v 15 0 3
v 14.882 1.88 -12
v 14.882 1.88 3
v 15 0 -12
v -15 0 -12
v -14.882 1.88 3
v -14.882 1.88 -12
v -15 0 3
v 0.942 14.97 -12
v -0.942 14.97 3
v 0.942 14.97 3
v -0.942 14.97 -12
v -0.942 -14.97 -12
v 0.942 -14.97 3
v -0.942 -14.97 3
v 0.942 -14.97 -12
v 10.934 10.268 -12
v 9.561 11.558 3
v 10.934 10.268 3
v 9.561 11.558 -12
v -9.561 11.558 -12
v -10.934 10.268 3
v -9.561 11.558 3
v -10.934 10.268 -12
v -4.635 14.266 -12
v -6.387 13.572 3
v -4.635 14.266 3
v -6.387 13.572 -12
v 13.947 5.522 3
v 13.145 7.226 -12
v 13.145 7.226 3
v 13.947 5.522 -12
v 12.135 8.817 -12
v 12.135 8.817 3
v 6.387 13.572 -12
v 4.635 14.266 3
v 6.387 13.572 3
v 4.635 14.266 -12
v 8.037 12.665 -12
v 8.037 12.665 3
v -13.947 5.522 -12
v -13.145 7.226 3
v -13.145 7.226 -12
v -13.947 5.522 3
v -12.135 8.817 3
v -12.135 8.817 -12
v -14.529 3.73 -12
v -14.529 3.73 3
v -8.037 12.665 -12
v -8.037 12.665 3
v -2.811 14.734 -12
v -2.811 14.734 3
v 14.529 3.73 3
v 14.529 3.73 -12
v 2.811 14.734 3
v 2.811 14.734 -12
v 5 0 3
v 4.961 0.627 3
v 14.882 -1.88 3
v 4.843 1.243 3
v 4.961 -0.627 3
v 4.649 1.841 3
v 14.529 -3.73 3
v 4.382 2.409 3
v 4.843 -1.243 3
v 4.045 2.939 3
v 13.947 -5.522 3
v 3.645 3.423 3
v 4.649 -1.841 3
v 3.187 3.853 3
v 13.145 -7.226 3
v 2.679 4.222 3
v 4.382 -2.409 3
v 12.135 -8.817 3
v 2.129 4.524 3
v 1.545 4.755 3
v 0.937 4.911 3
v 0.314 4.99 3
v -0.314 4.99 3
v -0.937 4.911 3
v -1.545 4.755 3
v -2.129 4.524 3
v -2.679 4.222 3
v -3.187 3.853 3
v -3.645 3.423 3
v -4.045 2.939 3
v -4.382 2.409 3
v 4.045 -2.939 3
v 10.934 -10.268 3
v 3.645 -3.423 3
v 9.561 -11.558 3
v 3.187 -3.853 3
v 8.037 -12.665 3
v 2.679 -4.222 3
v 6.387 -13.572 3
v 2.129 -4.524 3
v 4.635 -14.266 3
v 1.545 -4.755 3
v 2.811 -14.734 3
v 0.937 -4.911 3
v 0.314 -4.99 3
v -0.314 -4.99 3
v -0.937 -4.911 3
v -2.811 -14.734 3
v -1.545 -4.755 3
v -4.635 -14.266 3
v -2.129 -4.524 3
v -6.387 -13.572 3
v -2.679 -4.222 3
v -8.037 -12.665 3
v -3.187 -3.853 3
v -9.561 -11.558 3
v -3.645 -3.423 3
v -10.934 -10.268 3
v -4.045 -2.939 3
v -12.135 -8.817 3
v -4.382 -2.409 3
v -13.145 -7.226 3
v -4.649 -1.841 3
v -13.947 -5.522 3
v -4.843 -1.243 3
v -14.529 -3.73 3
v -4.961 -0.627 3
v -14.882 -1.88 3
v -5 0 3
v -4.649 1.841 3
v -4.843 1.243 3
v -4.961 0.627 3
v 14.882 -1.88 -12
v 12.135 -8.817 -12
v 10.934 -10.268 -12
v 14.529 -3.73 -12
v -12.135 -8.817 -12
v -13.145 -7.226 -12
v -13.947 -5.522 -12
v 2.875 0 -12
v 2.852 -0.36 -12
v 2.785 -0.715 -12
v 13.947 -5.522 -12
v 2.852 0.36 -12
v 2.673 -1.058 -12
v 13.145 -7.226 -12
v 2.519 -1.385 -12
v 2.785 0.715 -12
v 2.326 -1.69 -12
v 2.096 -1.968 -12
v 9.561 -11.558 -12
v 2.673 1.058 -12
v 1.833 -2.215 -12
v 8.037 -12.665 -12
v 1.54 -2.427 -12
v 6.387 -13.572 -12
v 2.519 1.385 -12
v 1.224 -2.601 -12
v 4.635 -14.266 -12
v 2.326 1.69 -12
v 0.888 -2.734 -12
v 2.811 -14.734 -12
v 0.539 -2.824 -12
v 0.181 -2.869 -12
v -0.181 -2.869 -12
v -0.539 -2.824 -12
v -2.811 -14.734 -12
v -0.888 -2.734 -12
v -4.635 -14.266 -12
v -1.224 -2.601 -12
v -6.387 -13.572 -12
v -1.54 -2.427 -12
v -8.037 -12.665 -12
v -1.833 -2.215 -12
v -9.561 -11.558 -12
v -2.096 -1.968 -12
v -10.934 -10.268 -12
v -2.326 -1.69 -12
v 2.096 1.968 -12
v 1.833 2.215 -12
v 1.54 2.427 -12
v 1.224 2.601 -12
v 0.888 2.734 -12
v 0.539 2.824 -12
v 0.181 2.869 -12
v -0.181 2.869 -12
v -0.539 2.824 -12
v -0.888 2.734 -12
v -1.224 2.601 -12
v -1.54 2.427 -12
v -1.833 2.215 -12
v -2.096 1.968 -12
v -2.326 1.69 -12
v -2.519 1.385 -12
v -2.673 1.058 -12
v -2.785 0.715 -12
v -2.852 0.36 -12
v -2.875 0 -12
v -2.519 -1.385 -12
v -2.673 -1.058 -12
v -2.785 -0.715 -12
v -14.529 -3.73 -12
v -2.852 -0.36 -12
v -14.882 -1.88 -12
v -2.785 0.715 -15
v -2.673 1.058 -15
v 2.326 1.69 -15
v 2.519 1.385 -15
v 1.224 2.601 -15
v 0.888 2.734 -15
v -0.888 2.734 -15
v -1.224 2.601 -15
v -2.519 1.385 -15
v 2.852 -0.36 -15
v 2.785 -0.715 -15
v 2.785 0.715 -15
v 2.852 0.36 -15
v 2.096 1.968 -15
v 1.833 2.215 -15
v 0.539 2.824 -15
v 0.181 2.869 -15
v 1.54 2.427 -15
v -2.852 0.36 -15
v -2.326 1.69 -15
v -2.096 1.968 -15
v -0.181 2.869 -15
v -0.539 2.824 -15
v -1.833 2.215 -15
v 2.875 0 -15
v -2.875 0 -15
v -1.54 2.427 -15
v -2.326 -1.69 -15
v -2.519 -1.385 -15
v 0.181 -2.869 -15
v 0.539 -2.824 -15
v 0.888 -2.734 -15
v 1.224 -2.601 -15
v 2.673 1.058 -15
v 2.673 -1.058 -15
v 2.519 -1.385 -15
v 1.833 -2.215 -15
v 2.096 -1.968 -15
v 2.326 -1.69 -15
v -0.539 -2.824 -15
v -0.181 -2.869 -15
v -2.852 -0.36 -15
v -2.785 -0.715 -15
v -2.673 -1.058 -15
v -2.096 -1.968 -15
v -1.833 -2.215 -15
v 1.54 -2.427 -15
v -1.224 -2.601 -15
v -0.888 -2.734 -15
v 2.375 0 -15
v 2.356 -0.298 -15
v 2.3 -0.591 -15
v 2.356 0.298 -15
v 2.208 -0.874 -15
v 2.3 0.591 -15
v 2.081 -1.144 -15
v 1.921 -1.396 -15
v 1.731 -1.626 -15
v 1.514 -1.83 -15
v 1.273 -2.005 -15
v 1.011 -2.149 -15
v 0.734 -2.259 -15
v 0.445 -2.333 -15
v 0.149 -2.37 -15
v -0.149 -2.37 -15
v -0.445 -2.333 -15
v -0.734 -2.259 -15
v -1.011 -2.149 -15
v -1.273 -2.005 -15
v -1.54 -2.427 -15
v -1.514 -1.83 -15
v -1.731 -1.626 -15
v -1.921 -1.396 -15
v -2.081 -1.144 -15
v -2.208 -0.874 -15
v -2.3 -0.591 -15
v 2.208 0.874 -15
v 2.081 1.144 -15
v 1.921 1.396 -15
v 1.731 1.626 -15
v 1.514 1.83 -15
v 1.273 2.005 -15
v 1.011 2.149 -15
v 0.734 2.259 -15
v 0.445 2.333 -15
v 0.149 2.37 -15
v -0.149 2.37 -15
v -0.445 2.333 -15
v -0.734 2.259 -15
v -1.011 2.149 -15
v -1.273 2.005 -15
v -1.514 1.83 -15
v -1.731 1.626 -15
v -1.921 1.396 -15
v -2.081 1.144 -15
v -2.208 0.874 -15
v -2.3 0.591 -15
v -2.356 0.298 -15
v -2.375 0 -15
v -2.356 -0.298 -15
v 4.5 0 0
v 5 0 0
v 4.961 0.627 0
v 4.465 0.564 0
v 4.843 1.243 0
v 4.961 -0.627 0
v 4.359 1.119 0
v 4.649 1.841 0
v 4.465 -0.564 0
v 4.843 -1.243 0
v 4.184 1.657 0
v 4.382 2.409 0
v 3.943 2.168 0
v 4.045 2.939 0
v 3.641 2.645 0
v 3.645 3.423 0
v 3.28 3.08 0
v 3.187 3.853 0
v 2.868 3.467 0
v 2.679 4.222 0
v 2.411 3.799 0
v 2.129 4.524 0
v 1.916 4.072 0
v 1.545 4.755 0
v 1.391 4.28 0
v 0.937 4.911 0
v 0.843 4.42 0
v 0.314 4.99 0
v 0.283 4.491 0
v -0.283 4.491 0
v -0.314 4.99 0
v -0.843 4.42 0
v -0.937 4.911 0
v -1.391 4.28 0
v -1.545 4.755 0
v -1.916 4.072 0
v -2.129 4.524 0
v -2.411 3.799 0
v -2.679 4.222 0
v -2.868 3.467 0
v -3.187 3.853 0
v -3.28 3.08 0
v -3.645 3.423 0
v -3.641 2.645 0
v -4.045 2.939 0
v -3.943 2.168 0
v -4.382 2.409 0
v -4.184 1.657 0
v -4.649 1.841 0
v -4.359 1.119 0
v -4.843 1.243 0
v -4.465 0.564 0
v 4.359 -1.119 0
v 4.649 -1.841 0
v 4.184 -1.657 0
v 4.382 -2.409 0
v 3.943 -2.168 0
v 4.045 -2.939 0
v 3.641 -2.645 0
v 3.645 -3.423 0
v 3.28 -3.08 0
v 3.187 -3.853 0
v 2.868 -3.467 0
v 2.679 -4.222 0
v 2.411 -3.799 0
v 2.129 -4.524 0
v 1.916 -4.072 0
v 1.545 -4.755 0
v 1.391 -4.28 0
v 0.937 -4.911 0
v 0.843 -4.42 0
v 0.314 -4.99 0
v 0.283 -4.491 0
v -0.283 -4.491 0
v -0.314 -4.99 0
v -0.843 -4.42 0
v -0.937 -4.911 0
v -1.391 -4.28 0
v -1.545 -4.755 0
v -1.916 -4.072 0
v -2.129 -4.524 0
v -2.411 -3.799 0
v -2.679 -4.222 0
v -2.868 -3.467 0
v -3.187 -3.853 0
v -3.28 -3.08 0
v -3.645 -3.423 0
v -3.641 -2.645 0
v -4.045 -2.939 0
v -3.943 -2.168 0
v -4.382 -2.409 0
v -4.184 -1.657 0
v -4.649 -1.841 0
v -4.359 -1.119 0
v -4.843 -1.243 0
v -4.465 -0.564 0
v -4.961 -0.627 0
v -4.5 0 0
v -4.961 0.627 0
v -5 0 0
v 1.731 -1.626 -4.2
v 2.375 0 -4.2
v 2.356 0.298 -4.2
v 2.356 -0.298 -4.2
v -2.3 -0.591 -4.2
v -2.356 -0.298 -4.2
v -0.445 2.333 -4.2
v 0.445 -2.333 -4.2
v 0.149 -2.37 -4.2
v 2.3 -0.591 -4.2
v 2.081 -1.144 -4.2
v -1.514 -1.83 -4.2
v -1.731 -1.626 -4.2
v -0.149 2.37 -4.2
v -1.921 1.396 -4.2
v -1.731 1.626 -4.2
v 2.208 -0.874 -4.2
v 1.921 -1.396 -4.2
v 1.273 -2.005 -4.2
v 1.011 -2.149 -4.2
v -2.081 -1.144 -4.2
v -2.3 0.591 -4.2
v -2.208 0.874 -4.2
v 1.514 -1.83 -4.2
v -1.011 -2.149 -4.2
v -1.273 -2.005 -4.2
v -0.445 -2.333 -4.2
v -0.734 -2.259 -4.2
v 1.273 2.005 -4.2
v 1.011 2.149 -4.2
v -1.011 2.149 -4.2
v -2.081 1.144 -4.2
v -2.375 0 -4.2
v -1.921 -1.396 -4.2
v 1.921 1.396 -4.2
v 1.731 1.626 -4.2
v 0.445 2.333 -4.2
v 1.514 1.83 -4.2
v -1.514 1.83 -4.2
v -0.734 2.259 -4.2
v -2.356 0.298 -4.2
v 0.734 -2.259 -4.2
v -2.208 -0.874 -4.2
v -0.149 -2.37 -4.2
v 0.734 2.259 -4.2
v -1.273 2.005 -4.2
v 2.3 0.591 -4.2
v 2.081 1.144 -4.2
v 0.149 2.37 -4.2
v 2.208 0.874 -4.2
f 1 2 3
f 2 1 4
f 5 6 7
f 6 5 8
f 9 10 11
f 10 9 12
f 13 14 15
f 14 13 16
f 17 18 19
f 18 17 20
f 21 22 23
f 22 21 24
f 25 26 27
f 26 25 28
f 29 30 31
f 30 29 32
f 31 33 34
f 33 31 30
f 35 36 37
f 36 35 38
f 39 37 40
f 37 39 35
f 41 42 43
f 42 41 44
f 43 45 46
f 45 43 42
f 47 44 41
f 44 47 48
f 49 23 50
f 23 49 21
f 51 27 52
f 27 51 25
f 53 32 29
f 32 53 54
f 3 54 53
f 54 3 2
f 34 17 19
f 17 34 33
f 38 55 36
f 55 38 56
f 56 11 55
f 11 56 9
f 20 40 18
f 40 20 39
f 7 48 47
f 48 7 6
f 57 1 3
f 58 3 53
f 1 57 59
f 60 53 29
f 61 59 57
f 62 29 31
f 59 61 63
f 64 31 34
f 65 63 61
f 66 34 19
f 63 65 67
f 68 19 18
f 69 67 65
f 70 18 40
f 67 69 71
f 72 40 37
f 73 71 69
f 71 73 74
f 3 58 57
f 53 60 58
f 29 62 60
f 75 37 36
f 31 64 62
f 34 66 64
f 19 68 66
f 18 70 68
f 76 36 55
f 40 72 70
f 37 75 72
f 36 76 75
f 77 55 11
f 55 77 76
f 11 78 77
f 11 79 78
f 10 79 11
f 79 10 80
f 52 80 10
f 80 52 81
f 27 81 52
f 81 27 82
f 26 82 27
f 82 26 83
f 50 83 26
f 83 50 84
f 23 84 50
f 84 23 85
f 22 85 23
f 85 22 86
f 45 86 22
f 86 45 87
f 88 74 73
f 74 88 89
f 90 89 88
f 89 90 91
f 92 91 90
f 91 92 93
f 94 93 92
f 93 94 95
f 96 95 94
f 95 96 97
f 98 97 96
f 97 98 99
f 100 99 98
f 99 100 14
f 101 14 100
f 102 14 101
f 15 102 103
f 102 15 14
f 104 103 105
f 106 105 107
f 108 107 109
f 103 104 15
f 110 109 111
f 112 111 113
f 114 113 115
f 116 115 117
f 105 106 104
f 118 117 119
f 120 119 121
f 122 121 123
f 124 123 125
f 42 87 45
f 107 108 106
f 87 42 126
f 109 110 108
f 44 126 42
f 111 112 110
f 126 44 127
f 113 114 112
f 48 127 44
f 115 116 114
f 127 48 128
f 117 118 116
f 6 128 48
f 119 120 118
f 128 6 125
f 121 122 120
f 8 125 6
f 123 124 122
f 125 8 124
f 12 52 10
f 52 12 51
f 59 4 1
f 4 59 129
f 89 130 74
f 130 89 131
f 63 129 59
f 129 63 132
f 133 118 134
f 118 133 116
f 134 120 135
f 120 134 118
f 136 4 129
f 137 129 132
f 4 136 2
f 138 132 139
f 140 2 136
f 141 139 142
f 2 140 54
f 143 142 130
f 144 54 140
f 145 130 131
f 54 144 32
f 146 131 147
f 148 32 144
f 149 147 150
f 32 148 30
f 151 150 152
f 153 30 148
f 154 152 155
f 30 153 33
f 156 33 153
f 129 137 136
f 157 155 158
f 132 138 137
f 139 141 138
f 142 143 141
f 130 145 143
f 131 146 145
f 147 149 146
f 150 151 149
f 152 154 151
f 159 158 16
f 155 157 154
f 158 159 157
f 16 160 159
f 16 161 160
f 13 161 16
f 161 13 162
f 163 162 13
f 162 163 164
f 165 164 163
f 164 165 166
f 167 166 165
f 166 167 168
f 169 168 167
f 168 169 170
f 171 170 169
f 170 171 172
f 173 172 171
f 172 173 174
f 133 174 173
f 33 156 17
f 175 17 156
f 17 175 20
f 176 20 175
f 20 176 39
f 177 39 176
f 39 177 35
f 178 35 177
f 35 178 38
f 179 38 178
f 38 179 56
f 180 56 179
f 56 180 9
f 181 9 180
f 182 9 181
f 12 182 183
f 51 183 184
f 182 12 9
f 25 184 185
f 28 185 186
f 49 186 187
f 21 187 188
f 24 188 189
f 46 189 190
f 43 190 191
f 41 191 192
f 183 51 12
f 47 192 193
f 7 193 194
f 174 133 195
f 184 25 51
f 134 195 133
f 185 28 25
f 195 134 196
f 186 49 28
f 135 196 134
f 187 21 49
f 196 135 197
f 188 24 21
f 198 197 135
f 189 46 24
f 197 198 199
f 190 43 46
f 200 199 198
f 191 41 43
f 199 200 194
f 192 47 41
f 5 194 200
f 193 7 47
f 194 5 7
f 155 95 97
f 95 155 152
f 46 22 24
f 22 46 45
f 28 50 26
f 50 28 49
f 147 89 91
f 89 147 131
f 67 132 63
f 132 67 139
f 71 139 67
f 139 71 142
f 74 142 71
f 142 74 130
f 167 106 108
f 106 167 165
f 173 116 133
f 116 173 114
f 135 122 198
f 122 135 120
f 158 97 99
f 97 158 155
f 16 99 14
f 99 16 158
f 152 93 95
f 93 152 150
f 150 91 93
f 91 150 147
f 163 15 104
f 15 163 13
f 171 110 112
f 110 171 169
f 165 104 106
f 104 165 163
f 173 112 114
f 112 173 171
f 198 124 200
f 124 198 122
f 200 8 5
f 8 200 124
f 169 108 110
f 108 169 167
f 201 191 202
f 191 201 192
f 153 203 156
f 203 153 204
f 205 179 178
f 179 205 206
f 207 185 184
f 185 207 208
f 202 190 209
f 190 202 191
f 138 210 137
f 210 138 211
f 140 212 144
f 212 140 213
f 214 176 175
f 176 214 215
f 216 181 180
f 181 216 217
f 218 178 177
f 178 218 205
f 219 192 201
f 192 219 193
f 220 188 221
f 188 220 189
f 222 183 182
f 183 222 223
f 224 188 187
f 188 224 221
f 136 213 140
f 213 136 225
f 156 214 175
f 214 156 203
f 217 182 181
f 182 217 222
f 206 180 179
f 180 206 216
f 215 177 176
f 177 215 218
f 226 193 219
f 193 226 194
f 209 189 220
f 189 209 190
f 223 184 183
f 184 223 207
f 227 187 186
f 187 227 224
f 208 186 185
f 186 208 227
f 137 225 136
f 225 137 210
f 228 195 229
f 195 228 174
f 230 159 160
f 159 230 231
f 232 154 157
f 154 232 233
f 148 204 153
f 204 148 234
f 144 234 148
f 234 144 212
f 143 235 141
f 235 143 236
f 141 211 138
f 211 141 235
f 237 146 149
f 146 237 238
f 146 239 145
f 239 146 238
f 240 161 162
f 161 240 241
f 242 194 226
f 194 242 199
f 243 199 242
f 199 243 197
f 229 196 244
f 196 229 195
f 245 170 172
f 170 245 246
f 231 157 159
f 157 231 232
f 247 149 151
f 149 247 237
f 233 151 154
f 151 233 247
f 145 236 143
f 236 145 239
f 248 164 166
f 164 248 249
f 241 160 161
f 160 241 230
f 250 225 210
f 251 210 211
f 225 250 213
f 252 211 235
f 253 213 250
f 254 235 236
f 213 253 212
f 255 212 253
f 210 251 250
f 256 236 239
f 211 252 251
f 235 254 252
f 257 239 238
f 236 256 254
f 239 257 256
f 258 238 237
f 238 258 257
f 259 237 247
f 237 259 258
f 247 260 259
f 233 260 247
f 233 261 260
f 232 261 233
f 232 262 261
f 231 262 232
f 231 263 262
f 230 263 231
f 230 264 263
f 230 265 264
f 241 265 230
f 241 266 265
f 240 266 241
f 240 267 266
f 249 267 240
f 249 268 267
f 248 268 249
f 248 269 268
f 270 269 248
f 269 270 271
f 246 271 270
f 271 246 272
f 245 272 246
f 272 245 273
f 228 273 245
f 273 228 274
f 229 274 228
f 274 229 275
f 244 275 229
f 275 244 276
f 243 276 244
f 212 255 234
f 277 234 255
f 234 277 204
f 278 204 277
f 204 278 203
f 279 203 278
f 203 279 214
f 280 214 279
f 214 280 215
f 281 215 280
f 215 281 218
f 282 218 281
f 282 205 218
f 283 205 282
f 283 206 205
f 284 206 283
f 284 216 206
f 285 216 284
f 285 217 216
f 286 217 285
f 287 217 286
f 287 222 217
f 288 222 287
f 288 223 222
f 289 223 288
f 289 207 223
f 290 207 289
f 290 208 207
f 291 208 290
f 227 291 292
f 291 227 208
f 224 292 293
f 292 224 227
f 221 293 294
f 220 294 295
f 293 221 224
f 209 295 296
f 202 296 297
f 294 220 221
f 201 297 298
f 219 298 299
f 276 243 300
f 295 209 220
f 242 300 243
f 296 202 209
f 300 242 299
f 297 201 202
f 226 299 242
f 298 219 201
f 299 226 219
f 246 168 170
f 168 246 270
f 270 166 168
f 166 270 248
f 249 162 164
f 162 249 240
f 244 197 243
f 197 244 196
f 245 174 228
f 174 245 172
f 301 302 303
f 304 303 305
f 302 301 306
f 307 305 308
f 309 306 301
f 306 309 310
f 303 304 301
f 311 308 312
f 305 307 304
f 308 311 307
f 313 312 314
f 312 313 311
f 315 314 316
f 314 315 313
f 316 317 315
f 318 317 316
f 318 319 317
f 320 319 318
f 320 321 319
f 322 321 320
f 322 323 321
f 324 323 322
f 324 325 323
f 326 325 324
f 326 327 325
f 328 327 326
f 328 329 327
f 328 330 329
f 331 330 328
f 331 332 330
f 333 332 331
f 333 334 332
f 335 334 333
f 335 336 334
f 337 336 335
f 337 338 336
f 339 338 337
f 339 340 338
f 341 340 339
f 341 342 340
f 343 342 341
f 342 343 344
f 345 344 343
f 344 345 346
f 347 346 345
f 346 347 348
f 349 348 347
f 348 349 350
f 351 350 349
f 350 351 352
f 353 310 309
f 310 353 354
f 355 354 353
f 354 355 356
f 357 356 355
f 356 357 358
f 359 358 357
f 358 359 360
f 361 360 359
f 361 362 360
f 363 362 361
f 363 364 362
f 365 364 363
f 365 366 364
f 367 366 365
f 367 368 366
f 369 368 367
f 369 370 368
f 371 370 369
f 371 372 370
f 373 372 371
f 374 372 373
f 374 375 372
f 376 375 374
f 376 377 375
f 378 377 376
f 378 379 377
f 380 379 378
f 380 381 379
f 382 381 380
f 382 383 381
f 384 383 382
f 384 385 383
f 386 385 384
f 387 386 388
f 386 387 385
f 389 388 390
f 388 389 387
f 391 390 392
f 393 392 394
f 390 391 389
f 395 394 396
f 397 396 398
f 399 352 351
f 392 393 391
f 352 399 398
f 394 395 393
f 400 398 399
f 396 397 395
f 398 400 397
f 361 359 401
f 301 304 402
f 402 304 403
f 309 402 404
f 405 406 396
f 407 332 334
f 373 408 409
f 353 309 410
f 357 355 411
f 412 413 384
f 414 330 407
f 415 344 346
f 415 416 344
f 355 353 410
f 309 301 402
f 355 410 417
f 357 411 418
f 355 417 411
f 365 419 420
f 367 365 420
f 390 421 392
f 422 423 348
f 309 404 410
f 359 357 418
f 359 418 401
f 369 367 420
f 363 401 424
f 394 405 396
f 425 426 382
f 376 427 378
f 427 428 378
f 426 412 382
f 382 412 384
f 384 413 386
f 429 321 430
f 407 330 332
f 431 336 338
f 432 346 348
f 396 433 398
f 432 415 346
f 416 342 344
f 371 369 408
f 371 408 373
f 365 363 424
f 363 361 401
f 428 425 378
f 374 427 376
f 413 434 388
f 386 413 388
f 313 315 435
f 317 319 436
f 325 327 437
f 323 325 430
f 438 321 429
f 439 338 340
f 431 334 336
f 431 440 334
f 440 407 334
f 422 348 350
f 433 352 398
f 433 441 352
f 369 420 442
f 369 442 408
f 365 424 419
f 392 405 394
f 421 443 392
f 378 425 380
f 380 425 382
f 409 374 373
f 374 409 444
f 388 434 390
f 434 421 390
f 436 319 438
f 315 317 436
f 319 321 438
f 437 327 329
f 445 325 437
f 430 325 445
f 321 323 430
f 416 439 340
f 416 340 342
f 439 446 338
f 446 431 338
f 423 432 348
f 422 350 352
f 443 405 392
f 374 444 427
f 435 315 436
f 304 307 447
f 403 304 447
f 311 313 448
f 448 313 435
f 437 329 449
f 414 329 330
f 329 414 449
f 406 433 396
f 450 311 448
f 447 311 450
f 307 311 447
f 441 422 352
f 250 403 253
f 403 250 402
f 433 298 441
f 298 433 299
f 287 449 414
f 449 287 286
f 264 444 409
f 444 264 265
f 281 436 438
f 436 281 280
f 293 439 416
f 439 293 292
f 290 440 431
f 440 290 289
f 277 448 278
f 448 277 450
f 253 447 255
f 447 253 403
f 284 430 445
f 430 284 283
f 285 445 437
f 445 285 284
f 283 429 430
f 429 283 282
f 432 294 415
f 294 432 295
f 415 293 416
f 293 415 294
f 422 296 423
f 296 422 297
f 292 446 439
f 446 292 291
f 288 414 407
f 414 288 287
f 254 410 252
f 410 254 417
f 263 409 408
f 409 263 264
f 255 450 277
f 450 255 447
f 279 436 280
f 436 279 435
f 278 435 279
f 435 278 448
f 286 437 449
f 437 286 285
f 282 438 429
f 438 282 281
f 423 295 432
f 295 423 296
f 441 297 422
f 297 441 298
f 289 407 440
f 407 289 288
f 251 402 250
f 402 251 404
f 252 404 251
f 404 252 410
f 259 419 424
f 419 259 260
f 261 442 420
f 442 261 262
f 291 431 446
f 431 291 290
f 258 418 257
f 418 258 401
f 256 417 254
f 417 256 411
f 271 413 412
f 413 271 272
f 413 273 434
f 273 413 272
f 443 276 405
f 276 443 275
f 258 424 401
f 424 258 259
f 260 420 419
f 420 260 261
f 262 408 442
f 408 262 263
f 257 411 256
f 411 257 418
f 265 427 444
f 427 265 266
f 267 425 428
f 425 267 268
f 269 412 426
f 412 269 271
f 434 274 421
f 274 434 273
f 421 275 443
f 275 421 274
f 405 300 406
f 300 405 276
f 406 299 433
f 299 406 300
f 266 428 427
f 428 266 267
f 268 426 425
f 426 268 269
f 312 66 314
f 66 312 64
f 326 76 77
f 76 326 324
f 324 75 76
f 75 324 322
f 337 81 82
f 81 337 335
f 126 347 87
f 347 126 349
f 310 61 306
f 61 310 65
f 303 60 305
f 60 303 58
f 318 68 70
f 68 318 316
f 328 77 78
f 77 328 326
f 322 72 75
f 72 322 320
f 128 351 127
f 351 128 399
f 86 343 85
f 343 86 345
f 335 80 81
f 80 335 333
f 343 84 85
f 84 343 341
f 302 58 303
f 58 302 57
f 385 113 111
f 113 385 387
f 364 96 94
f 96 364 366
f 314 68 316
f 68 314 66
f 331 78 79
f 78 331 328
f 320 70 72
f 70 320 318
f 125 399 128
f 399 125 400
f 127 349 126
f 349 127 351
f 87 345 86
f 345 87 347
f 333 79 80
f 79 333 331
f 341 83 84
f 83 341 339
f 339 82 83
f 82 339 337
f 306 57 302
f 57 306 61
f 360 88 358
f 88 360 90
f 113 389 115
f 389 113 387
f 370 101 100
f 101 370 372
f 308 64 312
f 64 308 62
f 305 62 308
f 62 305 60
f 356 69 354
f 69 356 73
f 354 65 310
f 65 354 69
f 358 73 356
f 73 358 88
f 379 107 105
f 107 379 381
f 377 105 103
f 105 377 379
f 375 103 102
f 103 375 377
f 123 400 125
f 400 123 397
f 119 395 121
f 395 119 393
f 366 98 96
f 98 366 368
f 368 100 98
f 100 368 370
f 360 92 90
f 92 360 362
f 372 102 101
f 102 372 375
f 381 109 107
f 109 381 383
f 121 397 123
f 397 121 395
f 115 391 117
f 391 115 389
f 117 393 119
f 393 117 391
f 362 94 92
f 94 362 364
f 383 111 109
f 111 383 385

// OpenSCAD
$fn = 50;

difference() {
	union() {
		translate(v = [0, 0, -12.0]) {
			cylinder(h = 15, r = 15.0);
		}
		#translate(v = [0, 0, -15.0]) {
			cylinder(h = 15, r = 2.875);
		}
	}
	union() {
		translate(v = [0, 0, 0]) {
			rotate(a = [0, 0, 0]) {
				difference() {
					union() {
						translate(v = [0, 0, -15.0]) {
							cylinder(h = 15, r = 2.25);
						}
						translate(v = [0, 0, -4.2]) {
							cylinder(h = 4.2, r1 = 2.375, r2 = 4.5);
						}
						translate(v = [0, 0, -15.0]) {
							cylinder(h = 15, r = 2.375);
						}
						translate(v = [0, 0, -15.0]) {
							cylinder(h = 15, r = 2.25);
						}
					}
					union();
				}
			}
		}
		#cylinder(h = 3, r = 5.0);
	}
}
